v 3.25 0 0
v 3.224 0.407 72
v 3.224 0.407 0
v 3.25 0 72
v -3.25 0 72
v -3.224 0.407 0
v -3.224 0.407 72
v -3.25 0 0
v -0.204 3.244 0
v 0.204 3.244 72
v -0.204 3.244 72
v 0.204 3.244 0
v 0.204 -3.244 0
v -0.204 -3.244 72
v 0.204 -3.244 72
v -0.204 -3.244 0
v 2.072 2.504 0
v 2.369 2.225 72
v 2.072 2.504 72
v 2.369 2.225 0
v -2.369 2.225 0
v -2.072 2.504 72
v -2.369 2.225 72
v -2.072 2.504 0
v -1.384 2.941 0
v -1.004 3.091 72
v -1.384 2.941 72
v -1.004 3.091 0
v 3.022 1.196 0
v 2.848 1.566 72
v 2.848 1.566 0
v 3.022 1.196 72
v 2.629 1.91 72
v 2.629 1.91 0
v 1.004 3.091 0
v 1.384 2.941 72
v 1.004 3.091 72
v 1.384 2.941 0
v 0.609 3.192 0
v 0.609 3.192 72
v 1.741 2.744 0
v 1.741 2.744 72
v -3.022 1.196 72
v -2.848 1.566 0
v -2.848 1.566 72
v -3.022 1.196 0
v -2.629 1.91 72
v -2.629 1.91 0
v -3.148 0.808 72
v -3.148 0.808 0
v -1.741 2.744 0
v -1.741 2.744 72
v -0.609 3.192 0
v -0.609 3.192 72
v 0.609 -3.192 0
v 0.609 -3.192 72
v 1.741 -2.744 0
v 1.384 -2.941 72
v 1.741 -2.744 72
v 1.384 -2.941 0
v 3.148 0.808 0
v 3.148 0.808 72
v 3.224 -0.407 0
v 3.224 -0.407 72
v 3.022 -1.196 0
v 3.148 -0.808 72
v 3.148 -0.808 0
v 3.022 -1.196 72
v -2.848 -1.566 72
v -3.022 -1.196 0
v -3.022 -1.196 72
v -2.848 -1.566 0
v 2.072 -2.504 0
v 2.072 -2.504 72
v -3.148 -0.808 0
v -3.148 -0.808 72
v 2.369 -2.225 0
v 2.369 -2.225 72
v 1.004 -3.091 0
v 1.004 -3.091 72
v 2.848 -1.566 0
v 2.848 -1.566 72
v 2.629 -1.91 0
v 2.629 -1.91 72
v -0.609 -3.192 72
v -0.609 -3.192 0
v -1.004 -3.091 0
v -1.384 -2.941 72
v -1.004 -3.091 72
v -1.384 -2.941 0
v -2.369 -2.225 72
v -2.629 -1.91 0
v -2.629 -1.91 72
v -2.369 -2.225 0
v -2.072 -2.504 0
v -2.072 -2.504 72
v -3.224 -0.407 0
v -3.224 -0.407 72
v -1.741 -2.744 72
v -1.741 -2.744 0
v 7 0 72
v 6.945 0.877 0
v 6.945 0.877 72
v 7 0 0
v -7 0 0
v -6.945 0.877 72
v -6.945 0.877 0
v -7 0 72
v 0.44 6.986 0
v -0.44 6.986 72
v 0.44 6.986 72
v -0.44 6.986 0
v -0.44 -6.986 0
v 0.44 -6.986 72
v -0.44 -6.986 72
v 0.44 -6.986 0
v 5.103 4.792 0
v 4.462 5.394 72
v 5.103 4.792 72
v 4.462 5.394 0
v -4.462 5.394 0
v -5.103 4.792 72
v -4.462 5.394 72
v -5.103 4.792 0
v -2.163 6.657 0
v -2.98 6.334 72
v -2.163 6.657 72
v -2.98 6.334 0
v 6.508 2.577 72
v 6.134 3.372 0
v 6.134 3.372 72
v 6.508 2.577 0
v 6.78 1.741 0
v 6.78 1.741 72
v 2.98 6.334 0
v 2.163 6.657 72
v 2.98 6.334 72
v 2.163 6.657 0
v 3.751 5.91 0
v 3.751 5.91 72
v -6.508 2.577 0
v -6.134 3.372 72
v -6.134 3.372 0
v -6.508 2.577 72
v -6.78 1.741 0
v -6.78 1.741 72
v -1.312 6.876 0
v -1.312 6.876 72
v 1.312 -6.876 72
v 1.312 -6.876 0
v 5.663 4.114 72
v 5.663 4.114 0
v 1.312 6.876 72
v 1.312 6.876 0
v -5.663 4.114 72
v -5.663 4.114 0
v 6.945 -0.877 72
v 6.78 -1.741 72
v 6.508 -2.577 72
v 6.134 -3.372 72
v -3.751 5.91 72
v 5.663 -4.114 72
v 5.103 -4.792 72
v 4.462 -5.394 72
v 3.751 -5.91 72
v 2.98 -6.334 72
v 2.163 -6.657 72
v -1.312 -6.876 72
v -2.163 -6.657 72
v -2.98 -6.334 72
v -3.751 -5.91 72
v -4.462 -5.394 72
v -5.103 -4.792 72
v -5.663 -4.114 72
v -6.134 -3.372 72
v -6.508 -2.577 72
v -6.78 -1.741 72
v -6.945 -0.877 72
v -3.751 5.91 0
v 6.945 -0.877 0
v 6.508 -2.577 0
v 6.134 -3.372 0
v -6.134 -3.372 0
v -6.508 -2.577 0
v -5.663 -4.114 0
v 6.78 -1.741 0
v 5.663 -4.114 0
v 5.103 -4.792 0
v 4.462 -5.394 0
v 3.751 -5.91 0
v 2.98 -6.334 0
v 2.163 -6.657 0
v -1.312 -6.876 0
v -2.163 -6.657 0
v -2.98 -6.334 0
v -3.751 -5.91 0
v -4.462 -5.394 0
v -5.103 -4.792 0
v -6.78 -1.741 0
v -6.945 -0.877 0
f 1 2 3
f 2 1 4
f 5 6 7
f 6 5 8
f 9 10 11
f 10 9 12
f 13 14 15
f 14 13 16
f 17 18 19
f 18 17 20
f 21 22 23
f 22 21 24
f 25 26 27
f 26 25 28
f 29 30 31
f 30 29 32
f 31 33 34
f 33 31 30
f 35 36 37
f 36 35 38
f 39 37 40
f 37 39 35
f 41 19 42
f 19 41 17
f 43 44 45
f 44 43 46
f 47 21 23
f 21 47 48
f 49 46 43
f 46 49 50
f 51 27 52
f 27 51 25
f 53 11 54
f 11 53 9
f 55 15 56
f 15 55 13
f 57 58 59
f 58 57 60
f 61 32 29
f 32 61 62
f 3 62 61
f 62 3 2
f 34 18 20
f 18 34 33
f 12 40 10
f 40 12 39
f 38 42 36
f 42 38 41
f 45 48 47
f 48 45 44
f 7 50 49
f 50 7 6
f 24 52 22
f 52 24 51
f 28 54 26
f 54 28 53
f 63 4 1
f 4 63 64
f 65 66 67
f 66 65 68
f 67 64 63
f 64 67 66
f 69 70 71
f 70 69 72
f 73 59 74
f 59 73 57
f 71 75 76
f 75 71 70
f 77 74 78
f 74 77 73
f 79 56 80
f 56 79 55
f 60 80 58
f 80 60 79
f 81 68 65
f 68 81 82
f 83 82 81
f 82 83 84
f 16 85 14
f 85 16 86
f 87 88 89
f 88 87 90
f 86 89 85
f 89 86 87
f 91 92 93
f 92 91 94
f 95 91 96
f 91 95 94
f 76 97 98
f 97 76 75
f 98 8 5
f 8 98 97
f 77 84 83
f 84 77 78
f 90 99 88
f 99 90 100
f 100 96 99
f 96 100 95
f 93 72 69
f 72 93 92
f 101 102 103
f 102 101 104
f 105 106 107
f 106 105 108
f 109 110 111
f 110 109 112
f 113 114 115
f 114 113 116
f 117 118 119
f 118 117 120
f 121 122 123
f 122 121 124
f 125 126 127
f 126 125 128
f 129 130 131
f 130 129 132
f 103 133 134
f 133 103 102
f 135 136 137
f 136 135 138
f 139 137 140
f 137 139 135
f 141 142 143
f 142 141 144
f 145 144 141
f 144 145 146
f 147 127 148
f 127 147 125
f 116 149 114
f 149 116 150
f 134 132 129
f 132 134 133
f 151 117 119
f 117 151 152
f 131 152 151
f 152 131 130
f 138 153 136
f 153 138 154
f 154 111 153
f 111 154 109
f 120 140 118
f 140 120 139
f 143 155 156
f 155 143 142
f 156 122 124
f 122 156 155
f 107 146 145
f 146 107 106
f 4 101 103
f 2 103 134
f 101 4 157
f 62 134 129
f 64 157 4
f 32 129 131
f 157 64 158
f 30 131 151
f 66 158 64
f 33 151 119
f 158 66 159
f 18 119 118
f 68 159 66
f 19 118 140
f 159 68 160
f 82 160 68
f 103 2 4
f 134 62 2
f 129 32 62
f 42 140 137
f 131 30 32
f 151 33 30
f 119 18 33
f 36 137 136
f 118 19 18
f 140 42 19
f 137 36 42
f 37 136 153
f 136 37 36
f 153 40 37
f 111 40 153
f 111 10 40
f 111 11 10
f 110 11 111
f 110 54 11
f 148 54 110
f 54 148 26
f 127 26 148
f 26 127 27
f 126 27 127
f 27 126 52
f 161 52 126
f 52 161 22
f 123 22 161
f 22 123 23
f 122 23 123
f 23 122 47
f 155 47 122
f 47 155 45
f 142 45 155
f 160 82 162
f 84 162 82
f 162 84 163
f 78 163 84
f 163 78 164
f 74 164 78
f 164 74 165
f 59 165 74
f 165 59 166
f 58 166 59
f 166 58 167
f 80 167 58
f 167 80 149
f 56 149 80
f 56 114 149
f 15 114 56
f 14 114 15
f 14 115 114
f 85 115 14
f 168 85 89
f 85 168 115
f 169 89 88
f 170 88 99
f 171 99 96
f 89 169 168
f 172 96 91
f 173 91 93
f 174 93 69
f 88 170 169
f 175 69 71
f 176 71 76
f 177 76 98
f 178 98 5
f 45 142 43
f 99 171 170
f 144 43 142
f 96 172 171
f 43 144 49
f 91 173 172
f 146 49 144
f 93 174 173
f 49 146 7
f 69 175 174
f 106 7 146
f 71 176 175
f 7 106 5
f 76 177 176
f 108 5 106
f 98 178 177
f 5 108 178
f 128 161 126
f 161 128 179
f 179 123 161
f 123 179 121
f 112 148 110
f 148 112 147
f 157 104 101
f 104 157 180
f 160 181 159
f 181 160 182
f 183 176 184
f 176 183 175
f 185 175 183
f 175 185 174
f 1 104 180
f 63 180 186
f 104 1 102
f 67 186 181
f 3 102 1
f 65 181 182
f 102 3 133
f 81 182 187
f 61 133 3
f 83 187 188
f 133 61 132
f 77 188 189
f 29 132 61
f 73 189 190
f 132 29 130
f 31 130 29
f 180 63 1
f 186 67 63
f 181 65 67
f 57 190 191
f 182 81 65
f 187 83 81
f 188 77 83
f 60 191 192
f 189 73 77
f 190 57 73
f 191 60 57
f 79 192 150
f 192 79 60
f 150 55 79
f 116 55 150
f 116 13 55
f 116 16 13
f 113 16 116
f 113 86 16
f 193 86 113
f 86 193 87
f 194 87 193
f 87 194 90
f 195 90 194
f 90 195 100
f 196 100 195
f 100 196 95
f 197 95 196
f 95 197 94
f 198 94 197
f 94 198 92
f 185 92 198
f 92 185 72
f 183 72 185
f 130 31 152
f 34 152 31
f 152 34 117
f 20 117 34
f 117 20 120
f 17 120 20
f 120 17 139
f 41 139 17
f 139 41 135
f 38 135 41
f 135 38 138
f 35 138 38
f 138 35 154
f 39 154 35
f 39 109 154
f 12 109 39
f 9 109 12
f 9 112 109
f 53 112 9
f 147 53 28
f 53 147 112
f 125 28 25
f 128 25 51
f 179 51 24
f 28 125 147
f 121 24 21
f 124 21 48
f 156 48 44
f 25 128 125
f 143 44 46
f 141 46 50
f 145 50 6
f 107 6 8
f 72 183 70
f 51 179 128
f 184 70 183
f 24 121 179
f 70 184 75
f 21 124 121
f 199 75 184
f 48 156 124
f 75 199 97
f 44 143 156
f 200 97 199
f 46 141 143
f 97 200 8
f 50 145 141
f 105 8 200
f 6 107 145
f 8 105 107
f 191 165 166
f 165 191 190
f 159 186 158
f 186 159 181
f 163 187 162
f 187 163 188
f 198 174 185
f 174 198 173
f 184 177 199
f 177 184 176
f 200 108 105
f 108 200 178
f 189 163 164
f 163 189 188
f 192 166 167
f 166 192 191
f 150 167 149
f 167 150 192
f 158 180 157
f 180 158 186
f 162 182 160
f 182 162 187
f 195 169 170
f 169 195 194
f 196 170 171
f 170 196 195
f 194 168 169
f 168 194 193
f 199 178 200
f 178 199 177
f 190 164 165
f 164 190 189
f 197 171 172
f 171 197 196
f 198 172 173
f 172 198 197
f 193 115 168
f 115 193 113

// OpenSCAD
$fn = 50;


difference() {
	union() {
		cylinder(h = 72, r = 7.0000000000);
	}
	union() {
		translate(v = [0, 0, -100]) {
			cylinder(h = 200, r = 3.2500000000);
		}
	}
}
